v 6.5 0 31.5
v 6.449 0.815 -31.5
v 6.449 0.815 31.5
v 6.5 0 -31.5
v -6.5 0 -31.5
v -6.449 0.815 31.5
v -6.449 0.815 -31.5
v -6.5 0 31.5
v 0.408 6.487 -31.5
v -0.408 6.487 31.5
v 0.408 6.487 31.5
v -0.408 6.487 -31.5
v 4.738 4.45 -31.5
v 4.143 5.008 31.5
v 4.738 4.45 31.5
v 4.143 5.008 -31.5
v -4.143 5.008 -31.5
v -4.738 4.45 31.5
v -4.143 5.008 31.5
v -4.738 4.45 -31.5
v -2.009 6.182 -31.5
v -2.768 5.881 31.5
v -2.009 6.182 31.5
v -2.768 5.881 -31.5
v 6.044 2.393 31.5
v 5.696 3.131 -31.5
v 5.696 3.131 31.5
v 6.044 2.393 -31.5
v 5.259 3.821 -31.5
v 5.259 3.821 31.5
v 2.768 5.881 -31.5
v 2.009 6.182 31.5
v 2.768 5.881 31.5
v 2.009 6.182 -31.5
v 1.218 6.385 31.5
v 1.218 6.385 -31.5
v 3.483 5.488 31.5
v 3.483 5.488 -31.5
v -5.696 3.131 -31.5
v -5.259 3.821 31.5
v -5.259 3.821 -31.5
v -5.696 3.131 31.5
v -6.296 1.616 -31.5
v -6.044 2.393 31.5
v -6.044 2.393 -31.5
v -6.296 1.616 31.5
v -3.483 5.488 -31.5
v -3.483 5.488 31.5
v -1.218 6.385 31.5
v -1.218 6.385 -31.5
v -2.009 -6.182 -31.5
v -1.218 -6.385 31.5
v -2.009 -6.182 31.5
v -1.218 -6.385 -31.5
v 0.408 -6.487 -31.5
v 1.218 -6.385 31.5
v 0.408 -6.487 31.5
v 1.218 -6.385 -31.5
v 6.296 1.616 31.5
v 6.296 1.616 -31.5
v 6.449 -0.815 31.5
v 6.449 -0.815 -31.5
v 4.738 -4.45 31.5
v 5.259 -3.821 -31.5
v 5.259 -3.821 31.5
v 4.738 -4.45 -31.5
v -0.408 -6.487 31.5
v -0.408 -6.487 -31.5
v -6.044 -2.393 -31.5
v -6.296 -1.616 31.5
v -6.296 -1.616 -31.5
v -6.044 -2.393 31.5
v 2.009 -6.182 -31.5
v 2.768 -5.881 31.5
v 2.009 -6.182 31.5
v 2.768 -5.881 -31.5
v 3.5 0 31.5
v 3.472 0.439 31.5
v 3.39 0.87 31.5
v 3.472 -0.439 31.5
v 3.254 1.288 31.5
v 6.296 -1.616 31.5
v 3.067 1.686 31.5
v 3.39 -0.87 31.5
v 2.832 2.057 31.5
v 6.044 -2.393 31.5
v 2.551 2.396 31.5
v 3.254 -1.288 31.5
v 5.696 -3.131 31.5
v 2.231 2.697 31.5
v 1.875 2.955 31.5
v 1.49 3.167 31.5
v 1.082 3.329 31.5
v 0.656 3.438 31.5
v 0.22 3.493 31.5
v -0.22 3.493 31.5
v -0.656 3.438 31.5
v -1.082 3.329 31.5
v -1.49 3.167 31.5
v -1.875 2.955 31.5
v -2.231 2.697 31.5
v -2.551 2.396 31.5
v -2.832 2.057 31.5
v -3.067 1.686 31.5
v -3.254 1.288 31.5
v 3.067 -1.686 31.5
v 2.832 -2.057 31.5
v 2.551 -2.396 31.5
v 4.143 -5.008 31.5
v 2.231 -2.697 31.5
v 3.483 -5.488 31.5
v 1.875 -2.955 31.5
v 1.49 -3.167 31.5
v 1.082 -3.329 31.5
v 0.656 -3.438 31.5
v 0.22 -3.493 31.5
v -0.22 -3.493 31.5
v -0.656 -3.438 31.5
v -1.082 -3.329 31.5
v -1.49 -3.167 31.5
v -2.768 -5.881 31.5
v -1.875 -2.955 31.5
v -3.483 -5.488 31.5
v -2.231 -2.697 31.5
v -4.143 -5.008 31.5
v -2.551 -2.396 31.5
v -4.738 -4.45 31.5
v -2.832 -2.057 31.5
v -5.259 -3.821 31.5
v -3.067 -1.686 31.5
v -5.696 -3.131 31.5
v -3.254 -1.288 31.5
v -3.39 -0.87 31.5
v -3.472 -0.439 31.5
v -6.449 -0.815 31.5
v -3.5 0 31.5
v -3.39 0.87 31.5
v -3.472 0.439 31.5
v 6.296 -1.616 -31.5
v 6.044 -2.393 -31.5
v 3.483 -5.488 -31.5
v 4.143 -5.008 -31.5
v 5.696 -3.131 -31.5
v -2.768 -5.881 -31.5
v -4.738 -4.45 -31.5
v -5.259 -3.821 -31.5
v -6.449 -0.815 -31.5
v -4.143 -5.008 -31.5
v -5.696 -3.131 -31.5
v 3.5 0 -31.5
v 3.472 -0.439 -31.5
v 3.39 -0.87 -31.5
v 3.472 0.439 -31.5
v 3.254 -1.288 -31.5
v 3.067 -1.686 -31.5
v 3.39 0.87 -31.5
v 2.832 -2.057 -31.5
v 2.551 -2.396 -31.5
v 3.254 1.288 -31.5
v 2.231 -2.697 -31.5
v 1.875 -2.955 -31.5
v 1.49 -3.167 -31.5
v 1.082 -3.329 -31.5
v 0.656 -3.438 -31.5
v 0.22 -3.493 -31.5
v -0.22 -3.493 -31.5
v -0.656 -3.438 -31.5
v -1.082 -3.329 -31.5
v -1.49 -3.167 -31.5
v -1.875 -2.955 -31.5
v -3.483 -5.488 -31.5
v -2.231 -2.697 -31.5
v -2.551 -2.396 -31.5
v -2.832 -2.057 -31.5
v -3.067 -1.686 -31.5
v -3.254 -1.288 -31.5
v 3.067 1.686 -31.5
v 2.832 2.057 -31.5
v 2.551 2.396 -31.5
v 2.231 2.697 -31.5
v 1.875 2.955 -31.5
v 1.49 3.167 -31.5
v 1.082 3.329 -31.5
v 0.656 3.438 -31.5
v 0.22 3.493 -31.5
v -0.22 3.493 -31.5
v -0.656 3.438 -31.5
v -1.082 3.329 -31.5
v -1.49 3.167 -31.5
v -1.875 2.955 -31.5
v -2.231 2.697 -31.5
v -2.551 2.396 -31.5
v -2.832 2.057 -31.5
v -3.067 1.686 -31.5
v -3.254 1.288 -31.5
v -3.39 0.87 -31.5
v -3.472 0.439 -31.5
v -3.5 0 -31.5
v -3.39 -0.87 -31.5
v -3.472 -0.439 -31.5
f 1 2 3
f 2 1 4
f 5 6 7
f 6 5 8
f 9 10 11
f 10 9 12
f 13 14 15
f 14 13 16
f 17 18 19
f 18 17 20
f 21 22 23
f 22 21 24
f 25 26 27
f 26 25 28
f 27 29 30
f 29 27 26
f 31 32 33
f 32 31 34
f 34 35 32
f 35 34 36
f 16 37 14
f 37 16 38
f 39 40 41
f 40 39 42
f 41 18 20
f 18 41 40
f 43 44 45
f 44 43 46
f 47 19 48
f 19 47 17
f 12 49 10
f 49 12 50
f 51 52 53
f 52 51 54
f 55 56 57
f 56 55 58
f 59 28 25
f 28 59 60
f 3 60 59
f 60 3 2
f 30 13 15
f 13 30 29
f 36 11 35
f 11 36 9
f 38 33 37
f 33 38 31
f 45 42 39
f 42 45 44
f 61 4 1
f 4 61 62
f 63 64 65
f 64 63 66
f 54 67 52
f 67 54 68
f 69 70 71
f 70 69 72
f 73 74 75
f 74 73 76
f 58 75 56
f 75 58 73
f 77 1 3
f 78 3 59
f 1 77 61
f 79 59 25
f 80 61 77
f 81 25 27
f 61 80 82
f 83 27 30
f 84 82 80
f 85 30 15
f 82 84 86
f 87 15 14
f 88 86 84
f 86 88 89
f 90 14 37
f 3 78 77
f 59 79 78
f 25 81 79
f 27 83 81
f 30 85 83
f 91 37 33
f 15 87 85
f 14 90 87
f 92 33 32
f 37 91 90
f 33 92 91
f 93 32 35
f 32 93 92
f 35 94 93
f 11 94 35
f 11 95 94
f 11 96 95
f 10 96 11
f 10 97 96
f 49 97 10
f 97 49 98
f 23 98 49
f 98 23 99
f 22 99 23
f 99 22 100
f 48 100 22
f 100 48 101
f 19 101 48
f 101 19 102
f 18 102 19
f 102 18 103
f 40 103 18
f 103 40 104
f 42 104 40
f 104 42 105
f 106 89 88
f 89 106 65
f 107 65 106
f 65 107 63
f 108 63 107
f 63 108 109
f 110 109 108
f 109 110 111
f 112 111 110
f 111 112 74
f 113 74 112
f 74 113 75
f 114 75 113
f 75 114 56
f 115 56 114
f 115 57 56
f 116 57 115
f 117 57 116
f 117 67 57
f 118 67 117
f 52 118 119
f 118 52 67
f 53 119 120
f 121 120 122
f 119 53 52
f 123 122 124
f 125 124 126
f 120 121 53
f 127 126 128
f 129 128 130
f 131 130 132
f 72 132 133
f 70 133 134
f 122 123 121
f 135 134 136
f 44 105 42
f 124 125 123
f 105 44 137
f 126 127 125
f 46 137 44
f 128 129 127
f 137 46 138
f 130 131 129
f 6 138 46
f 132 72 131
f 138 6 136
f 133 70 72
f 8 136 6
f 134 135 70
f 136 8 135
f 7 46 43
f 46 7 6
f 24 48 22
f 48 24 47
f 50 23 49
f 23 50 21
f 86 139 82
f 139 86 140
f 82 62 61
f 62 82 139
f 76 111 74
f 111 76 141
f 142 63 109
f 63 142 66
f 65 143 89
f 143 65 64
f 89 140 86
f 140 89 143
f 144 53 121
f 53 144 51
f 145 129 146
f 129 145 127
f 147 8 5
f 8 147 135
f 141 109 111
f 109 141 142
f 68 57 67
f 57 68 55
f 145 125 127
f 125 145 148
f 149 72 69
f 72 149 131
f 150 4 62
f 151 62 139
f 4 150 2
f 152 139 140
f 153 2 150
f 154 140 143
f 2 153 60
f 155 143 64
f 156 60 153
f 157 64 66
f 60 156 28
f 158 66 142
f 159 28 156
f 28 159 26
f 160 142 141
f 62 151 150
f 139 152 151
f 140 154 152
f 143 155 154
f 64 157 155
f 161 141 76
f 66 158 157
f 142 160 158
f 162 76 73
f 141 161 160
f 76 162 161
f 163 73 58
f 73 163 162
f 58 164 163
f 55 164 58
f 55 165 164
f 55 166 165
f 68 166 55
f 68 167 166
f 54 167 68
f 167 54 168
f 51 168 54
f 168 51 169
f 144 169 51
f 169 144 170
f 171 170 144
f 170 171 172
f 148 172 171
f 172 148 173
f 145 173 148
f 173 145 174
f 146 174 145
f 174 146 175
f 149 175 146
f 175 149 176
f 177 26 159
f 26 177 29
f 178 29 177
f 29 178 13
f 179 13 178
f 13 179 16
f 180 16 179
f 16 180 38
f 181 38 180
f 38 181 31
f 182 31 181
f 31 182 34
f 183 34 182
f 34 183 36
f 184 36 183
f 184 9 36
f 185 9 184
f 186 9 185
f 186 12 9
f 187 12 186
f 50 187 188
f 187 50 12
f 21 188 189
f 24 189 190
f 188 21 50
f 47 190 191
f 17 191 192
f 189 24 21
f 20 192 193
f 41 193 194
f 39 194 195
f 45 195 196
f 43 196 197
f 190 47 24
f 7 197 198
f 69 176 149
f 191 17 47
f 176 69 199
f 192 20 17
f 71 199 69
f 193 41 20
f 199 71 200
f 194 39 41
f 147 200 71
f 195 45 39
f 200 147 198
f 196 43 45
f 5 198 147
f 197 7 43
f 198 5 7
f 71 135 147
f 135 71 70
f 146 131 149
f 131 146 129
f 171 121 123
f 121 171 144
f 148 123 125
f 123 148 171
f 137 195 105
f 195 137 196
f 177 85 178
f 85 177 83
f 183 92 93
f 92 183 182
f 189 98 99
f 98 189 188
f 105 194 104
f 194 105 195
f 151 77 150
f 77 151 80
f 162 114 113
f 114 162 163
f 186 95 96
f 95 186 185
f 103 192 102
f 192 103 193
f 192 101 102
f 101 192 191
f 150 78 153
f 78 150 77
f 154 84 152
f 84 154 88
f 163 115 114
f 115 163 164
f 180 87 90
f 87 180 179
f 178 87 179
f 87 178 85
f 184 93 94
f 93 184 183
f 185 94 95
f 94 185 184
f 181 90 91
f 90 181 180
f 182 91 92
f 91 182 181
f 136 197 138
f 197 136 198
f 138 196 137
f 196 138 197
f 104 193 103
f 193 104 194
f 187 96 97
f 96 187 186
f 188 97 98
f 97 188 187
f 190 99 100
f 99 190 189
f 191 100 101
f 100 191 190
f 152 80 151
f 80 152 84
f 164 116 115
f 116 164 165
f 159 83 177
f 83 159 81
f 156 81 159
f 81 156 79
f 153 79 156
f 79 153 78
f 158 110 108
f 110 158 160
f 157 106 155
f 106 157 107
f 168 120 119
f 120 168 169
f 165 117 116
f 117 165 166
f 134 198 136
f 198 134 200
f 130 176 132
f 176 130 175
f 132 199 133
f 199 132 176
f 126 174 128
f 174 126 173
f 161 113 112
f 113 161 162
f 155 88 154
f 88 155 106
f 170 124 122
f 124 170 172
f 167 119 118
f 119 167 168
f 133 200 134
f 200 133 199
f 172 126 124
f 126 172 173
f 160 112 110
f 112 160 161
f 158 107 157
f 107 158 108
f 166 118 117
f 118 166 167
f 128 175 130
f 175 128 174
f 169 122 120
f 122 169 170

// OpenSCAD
$fn = 50;


difference() {
	union() {
		translate(v = [0, 0, -31.5000000000]) {
			cylinder(h = 63, r = 6.5000000000);
		}
	}
	union() {
		translate(v = [0, 0, -100.0000000000]) {
			cylinder(h = 200, r = 3.5000000000);
		}
	}
}
